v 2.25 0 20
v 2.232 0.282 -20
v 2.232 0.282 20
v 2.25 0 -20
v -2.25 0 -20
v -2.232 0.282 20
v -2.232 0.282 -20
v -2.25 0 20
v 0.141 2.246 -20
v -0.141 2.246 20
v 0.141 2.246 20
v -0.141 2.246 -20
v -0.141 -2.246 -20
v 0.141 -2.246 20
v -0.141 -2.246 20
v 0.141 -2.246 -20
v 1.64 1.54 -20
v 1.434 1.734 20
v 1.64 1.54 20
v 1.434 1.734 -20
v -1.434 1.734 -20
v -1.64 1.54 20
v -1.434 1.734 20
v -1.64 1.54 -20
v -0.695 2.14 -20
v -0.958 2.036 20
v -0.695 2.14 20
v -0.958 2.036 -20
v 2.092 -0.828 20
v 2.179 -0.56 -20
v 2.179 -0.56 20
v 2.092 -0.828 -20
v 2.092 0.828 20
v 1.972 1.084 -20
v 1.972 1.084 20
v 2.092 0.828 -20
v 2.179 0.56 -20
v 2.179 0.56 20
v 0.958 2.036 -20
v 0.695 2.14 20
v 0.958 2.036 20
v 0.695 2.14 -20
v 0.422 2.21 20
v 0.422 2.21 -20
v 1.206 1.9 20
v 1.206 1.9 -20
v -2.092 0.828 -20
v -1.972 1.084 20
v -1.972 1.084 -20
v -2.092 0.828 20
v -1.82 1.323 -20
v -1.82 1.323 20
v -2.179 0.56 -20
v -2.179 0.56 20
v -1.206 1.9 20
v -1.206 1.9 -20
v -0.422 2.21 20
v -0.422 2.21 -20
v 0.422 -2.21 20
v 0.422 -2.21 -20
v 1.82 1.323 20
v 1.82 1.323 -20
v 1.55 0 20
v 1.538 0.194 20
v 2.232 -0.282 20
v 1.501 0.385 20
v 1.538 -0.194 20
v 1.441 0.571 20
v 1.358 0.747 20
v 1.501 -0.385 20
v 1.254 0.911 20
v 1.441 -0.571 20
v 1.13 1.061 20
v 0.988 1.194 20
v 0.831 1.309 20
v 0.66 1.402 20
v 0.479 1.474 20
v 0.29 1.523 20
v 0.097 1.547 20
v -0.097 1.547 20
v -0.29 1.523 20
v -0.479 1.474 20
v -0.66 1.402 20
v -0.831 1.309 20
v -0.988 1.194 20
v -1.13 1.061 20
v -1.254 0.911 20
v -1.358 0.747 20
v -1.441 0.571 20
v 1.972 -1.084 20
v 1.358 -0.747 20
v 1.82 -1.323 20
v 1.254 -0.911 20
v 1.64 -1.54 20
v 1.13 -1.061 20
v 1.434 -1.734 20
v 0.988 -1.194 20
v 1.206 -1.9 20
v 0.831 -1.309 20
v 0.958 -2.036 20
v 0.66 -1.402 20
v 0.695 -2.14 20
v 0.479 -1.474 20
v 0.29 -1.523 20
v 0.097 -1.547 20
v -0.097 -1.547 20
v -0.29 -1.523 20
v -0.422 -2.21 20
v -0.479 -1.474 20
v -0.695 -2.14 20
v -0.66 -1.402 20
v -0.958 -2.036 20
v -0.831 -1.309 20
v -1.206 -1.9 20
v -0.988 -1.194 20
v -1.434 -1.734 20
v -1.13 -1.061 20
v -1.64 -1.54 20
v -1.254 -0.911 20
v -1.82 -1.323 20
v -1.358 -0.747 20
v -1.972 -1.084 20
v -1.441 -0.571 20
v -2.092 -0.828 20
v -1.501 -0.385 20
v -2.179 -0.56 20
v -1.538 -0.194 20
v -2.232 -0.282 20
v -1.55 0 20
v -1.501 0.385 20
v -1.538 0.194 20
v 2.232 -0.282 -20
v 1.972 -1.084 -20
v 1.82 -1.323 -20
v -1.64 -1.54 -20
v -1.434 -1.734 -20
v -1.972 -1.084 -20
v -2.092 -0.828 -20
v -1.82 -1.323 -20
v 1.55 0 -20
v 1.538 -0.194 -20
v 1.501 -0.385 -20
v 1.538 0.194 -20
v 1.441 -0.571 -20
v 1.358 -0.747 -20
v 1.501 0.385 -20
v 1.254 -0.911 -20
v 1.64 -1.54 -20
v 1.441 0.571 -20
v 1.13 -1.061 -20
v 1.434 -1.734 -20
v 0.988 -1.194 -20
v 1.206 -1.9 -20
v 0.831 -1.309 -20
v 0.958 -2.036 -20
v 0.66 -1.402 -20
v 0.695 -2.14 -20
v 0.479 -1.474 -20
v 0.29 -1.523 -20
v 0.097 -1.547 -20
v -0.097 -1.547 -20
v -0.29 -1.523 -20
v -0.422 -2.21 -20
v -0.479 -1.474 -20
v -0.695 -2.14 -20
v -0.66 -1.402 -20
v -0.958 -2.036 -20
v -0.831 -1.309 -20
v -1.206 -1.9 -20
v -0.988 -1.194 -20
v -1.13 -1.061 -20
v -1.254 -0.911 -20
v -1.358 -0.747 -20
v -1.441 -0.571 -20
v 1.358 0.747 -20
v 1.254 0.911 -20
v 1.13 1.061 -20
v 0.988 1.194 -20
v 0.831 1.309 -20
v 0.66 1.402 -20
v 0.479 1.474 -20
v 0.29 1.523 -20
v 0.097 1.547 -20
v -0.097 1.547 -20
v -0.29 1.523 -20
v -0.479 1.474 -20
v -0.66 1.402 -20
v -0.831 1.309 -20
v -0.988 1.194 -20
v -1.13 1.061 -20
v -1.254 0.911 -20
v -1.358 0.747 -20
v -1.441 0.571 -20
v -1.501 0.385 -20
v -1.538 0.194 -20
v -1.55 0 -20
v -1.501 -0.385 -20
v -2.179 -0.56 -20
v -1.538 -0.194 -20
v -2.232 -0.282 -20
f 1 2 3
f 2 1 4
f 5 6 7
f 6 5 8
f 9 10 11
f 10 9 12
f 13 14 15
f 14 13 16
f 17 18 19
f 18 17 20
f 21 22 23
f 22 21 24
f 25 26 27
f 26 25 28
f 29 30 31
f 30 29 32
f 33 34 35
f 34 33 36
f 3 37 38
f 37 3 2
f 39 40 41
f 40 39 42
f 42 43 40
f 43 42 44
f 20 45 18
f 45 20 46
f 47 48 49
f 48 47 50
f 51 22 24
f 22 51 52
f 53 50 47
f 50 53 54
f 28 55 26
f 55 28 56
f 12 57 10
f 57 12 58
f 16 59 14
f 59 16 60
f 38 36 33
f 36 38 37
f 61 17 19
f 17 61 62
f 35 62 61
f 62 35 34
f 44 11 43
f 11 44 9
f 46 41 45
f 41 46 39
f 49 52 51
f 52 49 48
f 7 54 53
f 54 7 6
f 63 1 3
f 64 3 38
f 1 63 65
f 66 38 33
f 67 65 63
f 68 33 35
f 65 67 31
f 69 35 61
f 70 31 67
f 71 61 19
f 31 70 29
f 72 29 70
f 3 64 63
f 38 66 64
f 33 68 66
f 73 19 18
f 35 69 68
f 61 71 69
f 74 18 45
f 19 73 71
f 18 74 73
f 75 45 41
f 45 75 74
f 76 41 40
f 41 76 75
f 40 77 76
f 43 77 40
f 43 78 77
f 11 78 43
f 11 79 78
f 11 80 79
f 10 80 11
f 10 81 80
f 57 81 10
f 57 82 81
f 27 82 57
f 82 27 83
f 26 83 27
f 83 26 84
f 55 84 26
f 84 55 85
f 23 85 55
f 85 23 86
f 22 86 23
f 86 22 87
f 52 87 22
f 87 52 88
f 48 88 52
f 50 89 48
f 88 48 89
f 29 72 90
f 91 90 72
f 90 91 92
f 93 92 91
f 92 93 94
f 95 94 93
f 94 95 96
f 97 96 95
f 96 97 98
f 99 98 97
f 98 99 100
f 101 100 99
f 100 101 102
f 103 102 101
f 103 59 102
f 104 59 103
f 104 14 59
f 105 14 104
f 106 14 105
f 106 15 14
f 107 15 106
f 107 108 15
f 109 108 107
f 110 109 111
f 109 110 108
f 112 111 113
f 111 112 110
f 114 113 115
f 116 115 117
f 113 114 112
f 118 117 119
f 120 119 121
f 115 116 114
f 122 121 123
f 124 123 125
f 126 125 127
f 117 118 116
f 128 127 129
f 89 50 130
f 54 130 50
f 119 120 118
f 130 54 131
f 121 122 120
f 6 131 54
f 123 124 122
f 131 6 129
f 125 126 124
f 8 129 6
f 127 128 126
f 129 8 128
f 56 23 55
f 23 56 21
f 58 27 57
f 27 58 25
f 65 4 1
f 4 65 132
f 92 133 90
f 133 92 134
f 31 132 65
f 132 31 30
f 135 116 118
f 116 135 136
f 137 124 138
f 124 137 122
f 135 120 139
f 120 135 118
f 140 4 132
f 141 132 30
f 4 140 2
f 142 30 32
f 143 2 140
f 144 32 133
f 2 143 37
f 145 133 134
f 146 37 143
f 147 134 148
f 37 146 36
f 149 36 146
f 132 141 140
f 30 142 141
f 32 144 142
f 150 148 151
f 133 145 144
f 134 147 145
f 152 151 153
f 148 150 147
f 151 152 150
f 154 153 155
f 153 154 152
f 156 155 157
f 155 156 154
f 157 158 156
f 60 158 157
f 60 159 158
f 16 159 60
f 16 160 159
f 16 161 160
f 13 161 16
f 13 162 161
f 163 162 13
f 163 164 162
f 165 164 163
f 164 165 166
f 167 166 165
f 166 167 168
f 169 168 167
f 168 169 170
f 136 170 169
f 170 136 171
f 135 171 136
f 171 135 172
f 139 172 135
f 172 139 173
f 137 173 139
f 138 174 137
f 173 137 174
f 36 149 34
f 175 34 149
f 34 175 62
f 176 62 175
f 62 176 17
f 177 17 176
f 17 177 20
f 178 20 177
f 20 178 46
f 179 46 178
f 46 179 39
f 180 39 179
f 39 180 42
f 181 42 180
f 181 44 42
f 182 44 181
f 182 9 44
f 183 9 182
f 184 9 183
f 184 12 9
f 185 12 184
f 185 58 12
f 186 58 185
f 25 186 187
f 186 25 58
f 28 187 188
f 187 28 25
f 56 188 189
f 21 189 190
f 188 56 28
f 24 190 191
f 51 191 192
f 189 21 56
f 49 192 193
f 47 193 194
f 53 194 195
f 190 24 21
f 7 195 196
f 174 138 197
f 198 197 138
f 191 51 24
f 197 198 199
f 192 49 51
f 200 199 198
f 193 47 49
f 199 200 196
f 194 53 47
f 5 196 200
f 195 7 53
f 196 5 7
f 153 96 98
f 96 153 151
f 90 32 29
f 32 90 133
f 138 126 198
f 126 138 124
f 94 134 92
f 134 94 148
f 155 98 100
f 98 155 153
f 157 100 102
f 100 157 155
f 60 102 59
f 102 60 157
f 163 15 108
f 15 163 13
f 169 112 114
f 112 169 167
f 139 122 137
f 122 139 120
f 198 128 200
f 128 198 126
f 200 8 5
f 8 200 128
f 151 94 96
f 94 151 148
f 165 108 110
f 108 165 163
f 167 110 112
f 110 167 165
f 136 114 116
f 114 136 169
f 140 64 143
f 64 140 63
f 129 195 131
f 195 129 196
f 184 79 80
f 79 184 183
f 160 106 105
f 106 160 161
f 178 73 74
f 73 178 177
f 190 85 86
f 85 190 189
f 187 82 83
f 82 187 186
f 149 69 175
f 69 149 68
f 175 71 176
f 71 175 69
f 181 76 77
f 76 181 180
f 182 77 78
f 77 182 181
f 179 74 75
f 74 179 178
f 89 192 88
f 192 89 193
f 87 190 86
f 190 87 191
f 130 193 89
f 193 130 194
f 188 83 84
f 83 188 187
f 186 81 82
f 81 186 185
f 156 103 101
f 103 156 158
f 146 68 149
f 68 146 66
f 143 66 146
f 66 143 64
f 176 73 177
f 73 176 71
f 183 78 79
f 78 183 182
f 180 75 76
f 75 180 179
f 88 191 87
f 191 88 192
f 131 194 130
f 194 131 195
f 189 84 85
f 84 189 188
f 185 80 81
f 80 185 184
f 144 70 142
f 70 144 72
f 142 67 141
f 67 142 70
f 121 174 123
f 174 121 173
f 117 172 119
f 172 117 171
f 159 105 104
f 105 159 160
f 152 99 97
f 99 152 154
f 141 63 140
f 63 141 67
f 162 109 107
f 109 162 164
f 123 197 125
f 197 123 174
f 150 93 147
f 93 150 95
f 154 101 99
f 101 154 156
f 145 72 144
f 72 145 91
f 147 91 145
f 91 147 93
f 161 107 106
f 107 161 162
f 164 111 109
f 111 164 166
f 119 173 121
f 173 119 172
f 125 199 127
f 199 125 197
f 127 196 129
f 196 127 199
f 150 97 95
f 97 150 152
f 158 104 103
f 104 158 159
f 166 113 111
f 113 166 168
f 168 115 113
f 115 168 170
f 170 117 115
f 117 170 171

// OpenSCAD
$fn = 50;


difference() {
	union() {
		translate(v = [0, 0, -20.0000000000]) {
			cylinder(h = 40, r = 2.2500000000);
		}
	}
	union() {
		translate(v = [0, 0, -100.0000000000]) {
			cylinder(h = 200, r = 1.5500000000);
		}
	}
}
